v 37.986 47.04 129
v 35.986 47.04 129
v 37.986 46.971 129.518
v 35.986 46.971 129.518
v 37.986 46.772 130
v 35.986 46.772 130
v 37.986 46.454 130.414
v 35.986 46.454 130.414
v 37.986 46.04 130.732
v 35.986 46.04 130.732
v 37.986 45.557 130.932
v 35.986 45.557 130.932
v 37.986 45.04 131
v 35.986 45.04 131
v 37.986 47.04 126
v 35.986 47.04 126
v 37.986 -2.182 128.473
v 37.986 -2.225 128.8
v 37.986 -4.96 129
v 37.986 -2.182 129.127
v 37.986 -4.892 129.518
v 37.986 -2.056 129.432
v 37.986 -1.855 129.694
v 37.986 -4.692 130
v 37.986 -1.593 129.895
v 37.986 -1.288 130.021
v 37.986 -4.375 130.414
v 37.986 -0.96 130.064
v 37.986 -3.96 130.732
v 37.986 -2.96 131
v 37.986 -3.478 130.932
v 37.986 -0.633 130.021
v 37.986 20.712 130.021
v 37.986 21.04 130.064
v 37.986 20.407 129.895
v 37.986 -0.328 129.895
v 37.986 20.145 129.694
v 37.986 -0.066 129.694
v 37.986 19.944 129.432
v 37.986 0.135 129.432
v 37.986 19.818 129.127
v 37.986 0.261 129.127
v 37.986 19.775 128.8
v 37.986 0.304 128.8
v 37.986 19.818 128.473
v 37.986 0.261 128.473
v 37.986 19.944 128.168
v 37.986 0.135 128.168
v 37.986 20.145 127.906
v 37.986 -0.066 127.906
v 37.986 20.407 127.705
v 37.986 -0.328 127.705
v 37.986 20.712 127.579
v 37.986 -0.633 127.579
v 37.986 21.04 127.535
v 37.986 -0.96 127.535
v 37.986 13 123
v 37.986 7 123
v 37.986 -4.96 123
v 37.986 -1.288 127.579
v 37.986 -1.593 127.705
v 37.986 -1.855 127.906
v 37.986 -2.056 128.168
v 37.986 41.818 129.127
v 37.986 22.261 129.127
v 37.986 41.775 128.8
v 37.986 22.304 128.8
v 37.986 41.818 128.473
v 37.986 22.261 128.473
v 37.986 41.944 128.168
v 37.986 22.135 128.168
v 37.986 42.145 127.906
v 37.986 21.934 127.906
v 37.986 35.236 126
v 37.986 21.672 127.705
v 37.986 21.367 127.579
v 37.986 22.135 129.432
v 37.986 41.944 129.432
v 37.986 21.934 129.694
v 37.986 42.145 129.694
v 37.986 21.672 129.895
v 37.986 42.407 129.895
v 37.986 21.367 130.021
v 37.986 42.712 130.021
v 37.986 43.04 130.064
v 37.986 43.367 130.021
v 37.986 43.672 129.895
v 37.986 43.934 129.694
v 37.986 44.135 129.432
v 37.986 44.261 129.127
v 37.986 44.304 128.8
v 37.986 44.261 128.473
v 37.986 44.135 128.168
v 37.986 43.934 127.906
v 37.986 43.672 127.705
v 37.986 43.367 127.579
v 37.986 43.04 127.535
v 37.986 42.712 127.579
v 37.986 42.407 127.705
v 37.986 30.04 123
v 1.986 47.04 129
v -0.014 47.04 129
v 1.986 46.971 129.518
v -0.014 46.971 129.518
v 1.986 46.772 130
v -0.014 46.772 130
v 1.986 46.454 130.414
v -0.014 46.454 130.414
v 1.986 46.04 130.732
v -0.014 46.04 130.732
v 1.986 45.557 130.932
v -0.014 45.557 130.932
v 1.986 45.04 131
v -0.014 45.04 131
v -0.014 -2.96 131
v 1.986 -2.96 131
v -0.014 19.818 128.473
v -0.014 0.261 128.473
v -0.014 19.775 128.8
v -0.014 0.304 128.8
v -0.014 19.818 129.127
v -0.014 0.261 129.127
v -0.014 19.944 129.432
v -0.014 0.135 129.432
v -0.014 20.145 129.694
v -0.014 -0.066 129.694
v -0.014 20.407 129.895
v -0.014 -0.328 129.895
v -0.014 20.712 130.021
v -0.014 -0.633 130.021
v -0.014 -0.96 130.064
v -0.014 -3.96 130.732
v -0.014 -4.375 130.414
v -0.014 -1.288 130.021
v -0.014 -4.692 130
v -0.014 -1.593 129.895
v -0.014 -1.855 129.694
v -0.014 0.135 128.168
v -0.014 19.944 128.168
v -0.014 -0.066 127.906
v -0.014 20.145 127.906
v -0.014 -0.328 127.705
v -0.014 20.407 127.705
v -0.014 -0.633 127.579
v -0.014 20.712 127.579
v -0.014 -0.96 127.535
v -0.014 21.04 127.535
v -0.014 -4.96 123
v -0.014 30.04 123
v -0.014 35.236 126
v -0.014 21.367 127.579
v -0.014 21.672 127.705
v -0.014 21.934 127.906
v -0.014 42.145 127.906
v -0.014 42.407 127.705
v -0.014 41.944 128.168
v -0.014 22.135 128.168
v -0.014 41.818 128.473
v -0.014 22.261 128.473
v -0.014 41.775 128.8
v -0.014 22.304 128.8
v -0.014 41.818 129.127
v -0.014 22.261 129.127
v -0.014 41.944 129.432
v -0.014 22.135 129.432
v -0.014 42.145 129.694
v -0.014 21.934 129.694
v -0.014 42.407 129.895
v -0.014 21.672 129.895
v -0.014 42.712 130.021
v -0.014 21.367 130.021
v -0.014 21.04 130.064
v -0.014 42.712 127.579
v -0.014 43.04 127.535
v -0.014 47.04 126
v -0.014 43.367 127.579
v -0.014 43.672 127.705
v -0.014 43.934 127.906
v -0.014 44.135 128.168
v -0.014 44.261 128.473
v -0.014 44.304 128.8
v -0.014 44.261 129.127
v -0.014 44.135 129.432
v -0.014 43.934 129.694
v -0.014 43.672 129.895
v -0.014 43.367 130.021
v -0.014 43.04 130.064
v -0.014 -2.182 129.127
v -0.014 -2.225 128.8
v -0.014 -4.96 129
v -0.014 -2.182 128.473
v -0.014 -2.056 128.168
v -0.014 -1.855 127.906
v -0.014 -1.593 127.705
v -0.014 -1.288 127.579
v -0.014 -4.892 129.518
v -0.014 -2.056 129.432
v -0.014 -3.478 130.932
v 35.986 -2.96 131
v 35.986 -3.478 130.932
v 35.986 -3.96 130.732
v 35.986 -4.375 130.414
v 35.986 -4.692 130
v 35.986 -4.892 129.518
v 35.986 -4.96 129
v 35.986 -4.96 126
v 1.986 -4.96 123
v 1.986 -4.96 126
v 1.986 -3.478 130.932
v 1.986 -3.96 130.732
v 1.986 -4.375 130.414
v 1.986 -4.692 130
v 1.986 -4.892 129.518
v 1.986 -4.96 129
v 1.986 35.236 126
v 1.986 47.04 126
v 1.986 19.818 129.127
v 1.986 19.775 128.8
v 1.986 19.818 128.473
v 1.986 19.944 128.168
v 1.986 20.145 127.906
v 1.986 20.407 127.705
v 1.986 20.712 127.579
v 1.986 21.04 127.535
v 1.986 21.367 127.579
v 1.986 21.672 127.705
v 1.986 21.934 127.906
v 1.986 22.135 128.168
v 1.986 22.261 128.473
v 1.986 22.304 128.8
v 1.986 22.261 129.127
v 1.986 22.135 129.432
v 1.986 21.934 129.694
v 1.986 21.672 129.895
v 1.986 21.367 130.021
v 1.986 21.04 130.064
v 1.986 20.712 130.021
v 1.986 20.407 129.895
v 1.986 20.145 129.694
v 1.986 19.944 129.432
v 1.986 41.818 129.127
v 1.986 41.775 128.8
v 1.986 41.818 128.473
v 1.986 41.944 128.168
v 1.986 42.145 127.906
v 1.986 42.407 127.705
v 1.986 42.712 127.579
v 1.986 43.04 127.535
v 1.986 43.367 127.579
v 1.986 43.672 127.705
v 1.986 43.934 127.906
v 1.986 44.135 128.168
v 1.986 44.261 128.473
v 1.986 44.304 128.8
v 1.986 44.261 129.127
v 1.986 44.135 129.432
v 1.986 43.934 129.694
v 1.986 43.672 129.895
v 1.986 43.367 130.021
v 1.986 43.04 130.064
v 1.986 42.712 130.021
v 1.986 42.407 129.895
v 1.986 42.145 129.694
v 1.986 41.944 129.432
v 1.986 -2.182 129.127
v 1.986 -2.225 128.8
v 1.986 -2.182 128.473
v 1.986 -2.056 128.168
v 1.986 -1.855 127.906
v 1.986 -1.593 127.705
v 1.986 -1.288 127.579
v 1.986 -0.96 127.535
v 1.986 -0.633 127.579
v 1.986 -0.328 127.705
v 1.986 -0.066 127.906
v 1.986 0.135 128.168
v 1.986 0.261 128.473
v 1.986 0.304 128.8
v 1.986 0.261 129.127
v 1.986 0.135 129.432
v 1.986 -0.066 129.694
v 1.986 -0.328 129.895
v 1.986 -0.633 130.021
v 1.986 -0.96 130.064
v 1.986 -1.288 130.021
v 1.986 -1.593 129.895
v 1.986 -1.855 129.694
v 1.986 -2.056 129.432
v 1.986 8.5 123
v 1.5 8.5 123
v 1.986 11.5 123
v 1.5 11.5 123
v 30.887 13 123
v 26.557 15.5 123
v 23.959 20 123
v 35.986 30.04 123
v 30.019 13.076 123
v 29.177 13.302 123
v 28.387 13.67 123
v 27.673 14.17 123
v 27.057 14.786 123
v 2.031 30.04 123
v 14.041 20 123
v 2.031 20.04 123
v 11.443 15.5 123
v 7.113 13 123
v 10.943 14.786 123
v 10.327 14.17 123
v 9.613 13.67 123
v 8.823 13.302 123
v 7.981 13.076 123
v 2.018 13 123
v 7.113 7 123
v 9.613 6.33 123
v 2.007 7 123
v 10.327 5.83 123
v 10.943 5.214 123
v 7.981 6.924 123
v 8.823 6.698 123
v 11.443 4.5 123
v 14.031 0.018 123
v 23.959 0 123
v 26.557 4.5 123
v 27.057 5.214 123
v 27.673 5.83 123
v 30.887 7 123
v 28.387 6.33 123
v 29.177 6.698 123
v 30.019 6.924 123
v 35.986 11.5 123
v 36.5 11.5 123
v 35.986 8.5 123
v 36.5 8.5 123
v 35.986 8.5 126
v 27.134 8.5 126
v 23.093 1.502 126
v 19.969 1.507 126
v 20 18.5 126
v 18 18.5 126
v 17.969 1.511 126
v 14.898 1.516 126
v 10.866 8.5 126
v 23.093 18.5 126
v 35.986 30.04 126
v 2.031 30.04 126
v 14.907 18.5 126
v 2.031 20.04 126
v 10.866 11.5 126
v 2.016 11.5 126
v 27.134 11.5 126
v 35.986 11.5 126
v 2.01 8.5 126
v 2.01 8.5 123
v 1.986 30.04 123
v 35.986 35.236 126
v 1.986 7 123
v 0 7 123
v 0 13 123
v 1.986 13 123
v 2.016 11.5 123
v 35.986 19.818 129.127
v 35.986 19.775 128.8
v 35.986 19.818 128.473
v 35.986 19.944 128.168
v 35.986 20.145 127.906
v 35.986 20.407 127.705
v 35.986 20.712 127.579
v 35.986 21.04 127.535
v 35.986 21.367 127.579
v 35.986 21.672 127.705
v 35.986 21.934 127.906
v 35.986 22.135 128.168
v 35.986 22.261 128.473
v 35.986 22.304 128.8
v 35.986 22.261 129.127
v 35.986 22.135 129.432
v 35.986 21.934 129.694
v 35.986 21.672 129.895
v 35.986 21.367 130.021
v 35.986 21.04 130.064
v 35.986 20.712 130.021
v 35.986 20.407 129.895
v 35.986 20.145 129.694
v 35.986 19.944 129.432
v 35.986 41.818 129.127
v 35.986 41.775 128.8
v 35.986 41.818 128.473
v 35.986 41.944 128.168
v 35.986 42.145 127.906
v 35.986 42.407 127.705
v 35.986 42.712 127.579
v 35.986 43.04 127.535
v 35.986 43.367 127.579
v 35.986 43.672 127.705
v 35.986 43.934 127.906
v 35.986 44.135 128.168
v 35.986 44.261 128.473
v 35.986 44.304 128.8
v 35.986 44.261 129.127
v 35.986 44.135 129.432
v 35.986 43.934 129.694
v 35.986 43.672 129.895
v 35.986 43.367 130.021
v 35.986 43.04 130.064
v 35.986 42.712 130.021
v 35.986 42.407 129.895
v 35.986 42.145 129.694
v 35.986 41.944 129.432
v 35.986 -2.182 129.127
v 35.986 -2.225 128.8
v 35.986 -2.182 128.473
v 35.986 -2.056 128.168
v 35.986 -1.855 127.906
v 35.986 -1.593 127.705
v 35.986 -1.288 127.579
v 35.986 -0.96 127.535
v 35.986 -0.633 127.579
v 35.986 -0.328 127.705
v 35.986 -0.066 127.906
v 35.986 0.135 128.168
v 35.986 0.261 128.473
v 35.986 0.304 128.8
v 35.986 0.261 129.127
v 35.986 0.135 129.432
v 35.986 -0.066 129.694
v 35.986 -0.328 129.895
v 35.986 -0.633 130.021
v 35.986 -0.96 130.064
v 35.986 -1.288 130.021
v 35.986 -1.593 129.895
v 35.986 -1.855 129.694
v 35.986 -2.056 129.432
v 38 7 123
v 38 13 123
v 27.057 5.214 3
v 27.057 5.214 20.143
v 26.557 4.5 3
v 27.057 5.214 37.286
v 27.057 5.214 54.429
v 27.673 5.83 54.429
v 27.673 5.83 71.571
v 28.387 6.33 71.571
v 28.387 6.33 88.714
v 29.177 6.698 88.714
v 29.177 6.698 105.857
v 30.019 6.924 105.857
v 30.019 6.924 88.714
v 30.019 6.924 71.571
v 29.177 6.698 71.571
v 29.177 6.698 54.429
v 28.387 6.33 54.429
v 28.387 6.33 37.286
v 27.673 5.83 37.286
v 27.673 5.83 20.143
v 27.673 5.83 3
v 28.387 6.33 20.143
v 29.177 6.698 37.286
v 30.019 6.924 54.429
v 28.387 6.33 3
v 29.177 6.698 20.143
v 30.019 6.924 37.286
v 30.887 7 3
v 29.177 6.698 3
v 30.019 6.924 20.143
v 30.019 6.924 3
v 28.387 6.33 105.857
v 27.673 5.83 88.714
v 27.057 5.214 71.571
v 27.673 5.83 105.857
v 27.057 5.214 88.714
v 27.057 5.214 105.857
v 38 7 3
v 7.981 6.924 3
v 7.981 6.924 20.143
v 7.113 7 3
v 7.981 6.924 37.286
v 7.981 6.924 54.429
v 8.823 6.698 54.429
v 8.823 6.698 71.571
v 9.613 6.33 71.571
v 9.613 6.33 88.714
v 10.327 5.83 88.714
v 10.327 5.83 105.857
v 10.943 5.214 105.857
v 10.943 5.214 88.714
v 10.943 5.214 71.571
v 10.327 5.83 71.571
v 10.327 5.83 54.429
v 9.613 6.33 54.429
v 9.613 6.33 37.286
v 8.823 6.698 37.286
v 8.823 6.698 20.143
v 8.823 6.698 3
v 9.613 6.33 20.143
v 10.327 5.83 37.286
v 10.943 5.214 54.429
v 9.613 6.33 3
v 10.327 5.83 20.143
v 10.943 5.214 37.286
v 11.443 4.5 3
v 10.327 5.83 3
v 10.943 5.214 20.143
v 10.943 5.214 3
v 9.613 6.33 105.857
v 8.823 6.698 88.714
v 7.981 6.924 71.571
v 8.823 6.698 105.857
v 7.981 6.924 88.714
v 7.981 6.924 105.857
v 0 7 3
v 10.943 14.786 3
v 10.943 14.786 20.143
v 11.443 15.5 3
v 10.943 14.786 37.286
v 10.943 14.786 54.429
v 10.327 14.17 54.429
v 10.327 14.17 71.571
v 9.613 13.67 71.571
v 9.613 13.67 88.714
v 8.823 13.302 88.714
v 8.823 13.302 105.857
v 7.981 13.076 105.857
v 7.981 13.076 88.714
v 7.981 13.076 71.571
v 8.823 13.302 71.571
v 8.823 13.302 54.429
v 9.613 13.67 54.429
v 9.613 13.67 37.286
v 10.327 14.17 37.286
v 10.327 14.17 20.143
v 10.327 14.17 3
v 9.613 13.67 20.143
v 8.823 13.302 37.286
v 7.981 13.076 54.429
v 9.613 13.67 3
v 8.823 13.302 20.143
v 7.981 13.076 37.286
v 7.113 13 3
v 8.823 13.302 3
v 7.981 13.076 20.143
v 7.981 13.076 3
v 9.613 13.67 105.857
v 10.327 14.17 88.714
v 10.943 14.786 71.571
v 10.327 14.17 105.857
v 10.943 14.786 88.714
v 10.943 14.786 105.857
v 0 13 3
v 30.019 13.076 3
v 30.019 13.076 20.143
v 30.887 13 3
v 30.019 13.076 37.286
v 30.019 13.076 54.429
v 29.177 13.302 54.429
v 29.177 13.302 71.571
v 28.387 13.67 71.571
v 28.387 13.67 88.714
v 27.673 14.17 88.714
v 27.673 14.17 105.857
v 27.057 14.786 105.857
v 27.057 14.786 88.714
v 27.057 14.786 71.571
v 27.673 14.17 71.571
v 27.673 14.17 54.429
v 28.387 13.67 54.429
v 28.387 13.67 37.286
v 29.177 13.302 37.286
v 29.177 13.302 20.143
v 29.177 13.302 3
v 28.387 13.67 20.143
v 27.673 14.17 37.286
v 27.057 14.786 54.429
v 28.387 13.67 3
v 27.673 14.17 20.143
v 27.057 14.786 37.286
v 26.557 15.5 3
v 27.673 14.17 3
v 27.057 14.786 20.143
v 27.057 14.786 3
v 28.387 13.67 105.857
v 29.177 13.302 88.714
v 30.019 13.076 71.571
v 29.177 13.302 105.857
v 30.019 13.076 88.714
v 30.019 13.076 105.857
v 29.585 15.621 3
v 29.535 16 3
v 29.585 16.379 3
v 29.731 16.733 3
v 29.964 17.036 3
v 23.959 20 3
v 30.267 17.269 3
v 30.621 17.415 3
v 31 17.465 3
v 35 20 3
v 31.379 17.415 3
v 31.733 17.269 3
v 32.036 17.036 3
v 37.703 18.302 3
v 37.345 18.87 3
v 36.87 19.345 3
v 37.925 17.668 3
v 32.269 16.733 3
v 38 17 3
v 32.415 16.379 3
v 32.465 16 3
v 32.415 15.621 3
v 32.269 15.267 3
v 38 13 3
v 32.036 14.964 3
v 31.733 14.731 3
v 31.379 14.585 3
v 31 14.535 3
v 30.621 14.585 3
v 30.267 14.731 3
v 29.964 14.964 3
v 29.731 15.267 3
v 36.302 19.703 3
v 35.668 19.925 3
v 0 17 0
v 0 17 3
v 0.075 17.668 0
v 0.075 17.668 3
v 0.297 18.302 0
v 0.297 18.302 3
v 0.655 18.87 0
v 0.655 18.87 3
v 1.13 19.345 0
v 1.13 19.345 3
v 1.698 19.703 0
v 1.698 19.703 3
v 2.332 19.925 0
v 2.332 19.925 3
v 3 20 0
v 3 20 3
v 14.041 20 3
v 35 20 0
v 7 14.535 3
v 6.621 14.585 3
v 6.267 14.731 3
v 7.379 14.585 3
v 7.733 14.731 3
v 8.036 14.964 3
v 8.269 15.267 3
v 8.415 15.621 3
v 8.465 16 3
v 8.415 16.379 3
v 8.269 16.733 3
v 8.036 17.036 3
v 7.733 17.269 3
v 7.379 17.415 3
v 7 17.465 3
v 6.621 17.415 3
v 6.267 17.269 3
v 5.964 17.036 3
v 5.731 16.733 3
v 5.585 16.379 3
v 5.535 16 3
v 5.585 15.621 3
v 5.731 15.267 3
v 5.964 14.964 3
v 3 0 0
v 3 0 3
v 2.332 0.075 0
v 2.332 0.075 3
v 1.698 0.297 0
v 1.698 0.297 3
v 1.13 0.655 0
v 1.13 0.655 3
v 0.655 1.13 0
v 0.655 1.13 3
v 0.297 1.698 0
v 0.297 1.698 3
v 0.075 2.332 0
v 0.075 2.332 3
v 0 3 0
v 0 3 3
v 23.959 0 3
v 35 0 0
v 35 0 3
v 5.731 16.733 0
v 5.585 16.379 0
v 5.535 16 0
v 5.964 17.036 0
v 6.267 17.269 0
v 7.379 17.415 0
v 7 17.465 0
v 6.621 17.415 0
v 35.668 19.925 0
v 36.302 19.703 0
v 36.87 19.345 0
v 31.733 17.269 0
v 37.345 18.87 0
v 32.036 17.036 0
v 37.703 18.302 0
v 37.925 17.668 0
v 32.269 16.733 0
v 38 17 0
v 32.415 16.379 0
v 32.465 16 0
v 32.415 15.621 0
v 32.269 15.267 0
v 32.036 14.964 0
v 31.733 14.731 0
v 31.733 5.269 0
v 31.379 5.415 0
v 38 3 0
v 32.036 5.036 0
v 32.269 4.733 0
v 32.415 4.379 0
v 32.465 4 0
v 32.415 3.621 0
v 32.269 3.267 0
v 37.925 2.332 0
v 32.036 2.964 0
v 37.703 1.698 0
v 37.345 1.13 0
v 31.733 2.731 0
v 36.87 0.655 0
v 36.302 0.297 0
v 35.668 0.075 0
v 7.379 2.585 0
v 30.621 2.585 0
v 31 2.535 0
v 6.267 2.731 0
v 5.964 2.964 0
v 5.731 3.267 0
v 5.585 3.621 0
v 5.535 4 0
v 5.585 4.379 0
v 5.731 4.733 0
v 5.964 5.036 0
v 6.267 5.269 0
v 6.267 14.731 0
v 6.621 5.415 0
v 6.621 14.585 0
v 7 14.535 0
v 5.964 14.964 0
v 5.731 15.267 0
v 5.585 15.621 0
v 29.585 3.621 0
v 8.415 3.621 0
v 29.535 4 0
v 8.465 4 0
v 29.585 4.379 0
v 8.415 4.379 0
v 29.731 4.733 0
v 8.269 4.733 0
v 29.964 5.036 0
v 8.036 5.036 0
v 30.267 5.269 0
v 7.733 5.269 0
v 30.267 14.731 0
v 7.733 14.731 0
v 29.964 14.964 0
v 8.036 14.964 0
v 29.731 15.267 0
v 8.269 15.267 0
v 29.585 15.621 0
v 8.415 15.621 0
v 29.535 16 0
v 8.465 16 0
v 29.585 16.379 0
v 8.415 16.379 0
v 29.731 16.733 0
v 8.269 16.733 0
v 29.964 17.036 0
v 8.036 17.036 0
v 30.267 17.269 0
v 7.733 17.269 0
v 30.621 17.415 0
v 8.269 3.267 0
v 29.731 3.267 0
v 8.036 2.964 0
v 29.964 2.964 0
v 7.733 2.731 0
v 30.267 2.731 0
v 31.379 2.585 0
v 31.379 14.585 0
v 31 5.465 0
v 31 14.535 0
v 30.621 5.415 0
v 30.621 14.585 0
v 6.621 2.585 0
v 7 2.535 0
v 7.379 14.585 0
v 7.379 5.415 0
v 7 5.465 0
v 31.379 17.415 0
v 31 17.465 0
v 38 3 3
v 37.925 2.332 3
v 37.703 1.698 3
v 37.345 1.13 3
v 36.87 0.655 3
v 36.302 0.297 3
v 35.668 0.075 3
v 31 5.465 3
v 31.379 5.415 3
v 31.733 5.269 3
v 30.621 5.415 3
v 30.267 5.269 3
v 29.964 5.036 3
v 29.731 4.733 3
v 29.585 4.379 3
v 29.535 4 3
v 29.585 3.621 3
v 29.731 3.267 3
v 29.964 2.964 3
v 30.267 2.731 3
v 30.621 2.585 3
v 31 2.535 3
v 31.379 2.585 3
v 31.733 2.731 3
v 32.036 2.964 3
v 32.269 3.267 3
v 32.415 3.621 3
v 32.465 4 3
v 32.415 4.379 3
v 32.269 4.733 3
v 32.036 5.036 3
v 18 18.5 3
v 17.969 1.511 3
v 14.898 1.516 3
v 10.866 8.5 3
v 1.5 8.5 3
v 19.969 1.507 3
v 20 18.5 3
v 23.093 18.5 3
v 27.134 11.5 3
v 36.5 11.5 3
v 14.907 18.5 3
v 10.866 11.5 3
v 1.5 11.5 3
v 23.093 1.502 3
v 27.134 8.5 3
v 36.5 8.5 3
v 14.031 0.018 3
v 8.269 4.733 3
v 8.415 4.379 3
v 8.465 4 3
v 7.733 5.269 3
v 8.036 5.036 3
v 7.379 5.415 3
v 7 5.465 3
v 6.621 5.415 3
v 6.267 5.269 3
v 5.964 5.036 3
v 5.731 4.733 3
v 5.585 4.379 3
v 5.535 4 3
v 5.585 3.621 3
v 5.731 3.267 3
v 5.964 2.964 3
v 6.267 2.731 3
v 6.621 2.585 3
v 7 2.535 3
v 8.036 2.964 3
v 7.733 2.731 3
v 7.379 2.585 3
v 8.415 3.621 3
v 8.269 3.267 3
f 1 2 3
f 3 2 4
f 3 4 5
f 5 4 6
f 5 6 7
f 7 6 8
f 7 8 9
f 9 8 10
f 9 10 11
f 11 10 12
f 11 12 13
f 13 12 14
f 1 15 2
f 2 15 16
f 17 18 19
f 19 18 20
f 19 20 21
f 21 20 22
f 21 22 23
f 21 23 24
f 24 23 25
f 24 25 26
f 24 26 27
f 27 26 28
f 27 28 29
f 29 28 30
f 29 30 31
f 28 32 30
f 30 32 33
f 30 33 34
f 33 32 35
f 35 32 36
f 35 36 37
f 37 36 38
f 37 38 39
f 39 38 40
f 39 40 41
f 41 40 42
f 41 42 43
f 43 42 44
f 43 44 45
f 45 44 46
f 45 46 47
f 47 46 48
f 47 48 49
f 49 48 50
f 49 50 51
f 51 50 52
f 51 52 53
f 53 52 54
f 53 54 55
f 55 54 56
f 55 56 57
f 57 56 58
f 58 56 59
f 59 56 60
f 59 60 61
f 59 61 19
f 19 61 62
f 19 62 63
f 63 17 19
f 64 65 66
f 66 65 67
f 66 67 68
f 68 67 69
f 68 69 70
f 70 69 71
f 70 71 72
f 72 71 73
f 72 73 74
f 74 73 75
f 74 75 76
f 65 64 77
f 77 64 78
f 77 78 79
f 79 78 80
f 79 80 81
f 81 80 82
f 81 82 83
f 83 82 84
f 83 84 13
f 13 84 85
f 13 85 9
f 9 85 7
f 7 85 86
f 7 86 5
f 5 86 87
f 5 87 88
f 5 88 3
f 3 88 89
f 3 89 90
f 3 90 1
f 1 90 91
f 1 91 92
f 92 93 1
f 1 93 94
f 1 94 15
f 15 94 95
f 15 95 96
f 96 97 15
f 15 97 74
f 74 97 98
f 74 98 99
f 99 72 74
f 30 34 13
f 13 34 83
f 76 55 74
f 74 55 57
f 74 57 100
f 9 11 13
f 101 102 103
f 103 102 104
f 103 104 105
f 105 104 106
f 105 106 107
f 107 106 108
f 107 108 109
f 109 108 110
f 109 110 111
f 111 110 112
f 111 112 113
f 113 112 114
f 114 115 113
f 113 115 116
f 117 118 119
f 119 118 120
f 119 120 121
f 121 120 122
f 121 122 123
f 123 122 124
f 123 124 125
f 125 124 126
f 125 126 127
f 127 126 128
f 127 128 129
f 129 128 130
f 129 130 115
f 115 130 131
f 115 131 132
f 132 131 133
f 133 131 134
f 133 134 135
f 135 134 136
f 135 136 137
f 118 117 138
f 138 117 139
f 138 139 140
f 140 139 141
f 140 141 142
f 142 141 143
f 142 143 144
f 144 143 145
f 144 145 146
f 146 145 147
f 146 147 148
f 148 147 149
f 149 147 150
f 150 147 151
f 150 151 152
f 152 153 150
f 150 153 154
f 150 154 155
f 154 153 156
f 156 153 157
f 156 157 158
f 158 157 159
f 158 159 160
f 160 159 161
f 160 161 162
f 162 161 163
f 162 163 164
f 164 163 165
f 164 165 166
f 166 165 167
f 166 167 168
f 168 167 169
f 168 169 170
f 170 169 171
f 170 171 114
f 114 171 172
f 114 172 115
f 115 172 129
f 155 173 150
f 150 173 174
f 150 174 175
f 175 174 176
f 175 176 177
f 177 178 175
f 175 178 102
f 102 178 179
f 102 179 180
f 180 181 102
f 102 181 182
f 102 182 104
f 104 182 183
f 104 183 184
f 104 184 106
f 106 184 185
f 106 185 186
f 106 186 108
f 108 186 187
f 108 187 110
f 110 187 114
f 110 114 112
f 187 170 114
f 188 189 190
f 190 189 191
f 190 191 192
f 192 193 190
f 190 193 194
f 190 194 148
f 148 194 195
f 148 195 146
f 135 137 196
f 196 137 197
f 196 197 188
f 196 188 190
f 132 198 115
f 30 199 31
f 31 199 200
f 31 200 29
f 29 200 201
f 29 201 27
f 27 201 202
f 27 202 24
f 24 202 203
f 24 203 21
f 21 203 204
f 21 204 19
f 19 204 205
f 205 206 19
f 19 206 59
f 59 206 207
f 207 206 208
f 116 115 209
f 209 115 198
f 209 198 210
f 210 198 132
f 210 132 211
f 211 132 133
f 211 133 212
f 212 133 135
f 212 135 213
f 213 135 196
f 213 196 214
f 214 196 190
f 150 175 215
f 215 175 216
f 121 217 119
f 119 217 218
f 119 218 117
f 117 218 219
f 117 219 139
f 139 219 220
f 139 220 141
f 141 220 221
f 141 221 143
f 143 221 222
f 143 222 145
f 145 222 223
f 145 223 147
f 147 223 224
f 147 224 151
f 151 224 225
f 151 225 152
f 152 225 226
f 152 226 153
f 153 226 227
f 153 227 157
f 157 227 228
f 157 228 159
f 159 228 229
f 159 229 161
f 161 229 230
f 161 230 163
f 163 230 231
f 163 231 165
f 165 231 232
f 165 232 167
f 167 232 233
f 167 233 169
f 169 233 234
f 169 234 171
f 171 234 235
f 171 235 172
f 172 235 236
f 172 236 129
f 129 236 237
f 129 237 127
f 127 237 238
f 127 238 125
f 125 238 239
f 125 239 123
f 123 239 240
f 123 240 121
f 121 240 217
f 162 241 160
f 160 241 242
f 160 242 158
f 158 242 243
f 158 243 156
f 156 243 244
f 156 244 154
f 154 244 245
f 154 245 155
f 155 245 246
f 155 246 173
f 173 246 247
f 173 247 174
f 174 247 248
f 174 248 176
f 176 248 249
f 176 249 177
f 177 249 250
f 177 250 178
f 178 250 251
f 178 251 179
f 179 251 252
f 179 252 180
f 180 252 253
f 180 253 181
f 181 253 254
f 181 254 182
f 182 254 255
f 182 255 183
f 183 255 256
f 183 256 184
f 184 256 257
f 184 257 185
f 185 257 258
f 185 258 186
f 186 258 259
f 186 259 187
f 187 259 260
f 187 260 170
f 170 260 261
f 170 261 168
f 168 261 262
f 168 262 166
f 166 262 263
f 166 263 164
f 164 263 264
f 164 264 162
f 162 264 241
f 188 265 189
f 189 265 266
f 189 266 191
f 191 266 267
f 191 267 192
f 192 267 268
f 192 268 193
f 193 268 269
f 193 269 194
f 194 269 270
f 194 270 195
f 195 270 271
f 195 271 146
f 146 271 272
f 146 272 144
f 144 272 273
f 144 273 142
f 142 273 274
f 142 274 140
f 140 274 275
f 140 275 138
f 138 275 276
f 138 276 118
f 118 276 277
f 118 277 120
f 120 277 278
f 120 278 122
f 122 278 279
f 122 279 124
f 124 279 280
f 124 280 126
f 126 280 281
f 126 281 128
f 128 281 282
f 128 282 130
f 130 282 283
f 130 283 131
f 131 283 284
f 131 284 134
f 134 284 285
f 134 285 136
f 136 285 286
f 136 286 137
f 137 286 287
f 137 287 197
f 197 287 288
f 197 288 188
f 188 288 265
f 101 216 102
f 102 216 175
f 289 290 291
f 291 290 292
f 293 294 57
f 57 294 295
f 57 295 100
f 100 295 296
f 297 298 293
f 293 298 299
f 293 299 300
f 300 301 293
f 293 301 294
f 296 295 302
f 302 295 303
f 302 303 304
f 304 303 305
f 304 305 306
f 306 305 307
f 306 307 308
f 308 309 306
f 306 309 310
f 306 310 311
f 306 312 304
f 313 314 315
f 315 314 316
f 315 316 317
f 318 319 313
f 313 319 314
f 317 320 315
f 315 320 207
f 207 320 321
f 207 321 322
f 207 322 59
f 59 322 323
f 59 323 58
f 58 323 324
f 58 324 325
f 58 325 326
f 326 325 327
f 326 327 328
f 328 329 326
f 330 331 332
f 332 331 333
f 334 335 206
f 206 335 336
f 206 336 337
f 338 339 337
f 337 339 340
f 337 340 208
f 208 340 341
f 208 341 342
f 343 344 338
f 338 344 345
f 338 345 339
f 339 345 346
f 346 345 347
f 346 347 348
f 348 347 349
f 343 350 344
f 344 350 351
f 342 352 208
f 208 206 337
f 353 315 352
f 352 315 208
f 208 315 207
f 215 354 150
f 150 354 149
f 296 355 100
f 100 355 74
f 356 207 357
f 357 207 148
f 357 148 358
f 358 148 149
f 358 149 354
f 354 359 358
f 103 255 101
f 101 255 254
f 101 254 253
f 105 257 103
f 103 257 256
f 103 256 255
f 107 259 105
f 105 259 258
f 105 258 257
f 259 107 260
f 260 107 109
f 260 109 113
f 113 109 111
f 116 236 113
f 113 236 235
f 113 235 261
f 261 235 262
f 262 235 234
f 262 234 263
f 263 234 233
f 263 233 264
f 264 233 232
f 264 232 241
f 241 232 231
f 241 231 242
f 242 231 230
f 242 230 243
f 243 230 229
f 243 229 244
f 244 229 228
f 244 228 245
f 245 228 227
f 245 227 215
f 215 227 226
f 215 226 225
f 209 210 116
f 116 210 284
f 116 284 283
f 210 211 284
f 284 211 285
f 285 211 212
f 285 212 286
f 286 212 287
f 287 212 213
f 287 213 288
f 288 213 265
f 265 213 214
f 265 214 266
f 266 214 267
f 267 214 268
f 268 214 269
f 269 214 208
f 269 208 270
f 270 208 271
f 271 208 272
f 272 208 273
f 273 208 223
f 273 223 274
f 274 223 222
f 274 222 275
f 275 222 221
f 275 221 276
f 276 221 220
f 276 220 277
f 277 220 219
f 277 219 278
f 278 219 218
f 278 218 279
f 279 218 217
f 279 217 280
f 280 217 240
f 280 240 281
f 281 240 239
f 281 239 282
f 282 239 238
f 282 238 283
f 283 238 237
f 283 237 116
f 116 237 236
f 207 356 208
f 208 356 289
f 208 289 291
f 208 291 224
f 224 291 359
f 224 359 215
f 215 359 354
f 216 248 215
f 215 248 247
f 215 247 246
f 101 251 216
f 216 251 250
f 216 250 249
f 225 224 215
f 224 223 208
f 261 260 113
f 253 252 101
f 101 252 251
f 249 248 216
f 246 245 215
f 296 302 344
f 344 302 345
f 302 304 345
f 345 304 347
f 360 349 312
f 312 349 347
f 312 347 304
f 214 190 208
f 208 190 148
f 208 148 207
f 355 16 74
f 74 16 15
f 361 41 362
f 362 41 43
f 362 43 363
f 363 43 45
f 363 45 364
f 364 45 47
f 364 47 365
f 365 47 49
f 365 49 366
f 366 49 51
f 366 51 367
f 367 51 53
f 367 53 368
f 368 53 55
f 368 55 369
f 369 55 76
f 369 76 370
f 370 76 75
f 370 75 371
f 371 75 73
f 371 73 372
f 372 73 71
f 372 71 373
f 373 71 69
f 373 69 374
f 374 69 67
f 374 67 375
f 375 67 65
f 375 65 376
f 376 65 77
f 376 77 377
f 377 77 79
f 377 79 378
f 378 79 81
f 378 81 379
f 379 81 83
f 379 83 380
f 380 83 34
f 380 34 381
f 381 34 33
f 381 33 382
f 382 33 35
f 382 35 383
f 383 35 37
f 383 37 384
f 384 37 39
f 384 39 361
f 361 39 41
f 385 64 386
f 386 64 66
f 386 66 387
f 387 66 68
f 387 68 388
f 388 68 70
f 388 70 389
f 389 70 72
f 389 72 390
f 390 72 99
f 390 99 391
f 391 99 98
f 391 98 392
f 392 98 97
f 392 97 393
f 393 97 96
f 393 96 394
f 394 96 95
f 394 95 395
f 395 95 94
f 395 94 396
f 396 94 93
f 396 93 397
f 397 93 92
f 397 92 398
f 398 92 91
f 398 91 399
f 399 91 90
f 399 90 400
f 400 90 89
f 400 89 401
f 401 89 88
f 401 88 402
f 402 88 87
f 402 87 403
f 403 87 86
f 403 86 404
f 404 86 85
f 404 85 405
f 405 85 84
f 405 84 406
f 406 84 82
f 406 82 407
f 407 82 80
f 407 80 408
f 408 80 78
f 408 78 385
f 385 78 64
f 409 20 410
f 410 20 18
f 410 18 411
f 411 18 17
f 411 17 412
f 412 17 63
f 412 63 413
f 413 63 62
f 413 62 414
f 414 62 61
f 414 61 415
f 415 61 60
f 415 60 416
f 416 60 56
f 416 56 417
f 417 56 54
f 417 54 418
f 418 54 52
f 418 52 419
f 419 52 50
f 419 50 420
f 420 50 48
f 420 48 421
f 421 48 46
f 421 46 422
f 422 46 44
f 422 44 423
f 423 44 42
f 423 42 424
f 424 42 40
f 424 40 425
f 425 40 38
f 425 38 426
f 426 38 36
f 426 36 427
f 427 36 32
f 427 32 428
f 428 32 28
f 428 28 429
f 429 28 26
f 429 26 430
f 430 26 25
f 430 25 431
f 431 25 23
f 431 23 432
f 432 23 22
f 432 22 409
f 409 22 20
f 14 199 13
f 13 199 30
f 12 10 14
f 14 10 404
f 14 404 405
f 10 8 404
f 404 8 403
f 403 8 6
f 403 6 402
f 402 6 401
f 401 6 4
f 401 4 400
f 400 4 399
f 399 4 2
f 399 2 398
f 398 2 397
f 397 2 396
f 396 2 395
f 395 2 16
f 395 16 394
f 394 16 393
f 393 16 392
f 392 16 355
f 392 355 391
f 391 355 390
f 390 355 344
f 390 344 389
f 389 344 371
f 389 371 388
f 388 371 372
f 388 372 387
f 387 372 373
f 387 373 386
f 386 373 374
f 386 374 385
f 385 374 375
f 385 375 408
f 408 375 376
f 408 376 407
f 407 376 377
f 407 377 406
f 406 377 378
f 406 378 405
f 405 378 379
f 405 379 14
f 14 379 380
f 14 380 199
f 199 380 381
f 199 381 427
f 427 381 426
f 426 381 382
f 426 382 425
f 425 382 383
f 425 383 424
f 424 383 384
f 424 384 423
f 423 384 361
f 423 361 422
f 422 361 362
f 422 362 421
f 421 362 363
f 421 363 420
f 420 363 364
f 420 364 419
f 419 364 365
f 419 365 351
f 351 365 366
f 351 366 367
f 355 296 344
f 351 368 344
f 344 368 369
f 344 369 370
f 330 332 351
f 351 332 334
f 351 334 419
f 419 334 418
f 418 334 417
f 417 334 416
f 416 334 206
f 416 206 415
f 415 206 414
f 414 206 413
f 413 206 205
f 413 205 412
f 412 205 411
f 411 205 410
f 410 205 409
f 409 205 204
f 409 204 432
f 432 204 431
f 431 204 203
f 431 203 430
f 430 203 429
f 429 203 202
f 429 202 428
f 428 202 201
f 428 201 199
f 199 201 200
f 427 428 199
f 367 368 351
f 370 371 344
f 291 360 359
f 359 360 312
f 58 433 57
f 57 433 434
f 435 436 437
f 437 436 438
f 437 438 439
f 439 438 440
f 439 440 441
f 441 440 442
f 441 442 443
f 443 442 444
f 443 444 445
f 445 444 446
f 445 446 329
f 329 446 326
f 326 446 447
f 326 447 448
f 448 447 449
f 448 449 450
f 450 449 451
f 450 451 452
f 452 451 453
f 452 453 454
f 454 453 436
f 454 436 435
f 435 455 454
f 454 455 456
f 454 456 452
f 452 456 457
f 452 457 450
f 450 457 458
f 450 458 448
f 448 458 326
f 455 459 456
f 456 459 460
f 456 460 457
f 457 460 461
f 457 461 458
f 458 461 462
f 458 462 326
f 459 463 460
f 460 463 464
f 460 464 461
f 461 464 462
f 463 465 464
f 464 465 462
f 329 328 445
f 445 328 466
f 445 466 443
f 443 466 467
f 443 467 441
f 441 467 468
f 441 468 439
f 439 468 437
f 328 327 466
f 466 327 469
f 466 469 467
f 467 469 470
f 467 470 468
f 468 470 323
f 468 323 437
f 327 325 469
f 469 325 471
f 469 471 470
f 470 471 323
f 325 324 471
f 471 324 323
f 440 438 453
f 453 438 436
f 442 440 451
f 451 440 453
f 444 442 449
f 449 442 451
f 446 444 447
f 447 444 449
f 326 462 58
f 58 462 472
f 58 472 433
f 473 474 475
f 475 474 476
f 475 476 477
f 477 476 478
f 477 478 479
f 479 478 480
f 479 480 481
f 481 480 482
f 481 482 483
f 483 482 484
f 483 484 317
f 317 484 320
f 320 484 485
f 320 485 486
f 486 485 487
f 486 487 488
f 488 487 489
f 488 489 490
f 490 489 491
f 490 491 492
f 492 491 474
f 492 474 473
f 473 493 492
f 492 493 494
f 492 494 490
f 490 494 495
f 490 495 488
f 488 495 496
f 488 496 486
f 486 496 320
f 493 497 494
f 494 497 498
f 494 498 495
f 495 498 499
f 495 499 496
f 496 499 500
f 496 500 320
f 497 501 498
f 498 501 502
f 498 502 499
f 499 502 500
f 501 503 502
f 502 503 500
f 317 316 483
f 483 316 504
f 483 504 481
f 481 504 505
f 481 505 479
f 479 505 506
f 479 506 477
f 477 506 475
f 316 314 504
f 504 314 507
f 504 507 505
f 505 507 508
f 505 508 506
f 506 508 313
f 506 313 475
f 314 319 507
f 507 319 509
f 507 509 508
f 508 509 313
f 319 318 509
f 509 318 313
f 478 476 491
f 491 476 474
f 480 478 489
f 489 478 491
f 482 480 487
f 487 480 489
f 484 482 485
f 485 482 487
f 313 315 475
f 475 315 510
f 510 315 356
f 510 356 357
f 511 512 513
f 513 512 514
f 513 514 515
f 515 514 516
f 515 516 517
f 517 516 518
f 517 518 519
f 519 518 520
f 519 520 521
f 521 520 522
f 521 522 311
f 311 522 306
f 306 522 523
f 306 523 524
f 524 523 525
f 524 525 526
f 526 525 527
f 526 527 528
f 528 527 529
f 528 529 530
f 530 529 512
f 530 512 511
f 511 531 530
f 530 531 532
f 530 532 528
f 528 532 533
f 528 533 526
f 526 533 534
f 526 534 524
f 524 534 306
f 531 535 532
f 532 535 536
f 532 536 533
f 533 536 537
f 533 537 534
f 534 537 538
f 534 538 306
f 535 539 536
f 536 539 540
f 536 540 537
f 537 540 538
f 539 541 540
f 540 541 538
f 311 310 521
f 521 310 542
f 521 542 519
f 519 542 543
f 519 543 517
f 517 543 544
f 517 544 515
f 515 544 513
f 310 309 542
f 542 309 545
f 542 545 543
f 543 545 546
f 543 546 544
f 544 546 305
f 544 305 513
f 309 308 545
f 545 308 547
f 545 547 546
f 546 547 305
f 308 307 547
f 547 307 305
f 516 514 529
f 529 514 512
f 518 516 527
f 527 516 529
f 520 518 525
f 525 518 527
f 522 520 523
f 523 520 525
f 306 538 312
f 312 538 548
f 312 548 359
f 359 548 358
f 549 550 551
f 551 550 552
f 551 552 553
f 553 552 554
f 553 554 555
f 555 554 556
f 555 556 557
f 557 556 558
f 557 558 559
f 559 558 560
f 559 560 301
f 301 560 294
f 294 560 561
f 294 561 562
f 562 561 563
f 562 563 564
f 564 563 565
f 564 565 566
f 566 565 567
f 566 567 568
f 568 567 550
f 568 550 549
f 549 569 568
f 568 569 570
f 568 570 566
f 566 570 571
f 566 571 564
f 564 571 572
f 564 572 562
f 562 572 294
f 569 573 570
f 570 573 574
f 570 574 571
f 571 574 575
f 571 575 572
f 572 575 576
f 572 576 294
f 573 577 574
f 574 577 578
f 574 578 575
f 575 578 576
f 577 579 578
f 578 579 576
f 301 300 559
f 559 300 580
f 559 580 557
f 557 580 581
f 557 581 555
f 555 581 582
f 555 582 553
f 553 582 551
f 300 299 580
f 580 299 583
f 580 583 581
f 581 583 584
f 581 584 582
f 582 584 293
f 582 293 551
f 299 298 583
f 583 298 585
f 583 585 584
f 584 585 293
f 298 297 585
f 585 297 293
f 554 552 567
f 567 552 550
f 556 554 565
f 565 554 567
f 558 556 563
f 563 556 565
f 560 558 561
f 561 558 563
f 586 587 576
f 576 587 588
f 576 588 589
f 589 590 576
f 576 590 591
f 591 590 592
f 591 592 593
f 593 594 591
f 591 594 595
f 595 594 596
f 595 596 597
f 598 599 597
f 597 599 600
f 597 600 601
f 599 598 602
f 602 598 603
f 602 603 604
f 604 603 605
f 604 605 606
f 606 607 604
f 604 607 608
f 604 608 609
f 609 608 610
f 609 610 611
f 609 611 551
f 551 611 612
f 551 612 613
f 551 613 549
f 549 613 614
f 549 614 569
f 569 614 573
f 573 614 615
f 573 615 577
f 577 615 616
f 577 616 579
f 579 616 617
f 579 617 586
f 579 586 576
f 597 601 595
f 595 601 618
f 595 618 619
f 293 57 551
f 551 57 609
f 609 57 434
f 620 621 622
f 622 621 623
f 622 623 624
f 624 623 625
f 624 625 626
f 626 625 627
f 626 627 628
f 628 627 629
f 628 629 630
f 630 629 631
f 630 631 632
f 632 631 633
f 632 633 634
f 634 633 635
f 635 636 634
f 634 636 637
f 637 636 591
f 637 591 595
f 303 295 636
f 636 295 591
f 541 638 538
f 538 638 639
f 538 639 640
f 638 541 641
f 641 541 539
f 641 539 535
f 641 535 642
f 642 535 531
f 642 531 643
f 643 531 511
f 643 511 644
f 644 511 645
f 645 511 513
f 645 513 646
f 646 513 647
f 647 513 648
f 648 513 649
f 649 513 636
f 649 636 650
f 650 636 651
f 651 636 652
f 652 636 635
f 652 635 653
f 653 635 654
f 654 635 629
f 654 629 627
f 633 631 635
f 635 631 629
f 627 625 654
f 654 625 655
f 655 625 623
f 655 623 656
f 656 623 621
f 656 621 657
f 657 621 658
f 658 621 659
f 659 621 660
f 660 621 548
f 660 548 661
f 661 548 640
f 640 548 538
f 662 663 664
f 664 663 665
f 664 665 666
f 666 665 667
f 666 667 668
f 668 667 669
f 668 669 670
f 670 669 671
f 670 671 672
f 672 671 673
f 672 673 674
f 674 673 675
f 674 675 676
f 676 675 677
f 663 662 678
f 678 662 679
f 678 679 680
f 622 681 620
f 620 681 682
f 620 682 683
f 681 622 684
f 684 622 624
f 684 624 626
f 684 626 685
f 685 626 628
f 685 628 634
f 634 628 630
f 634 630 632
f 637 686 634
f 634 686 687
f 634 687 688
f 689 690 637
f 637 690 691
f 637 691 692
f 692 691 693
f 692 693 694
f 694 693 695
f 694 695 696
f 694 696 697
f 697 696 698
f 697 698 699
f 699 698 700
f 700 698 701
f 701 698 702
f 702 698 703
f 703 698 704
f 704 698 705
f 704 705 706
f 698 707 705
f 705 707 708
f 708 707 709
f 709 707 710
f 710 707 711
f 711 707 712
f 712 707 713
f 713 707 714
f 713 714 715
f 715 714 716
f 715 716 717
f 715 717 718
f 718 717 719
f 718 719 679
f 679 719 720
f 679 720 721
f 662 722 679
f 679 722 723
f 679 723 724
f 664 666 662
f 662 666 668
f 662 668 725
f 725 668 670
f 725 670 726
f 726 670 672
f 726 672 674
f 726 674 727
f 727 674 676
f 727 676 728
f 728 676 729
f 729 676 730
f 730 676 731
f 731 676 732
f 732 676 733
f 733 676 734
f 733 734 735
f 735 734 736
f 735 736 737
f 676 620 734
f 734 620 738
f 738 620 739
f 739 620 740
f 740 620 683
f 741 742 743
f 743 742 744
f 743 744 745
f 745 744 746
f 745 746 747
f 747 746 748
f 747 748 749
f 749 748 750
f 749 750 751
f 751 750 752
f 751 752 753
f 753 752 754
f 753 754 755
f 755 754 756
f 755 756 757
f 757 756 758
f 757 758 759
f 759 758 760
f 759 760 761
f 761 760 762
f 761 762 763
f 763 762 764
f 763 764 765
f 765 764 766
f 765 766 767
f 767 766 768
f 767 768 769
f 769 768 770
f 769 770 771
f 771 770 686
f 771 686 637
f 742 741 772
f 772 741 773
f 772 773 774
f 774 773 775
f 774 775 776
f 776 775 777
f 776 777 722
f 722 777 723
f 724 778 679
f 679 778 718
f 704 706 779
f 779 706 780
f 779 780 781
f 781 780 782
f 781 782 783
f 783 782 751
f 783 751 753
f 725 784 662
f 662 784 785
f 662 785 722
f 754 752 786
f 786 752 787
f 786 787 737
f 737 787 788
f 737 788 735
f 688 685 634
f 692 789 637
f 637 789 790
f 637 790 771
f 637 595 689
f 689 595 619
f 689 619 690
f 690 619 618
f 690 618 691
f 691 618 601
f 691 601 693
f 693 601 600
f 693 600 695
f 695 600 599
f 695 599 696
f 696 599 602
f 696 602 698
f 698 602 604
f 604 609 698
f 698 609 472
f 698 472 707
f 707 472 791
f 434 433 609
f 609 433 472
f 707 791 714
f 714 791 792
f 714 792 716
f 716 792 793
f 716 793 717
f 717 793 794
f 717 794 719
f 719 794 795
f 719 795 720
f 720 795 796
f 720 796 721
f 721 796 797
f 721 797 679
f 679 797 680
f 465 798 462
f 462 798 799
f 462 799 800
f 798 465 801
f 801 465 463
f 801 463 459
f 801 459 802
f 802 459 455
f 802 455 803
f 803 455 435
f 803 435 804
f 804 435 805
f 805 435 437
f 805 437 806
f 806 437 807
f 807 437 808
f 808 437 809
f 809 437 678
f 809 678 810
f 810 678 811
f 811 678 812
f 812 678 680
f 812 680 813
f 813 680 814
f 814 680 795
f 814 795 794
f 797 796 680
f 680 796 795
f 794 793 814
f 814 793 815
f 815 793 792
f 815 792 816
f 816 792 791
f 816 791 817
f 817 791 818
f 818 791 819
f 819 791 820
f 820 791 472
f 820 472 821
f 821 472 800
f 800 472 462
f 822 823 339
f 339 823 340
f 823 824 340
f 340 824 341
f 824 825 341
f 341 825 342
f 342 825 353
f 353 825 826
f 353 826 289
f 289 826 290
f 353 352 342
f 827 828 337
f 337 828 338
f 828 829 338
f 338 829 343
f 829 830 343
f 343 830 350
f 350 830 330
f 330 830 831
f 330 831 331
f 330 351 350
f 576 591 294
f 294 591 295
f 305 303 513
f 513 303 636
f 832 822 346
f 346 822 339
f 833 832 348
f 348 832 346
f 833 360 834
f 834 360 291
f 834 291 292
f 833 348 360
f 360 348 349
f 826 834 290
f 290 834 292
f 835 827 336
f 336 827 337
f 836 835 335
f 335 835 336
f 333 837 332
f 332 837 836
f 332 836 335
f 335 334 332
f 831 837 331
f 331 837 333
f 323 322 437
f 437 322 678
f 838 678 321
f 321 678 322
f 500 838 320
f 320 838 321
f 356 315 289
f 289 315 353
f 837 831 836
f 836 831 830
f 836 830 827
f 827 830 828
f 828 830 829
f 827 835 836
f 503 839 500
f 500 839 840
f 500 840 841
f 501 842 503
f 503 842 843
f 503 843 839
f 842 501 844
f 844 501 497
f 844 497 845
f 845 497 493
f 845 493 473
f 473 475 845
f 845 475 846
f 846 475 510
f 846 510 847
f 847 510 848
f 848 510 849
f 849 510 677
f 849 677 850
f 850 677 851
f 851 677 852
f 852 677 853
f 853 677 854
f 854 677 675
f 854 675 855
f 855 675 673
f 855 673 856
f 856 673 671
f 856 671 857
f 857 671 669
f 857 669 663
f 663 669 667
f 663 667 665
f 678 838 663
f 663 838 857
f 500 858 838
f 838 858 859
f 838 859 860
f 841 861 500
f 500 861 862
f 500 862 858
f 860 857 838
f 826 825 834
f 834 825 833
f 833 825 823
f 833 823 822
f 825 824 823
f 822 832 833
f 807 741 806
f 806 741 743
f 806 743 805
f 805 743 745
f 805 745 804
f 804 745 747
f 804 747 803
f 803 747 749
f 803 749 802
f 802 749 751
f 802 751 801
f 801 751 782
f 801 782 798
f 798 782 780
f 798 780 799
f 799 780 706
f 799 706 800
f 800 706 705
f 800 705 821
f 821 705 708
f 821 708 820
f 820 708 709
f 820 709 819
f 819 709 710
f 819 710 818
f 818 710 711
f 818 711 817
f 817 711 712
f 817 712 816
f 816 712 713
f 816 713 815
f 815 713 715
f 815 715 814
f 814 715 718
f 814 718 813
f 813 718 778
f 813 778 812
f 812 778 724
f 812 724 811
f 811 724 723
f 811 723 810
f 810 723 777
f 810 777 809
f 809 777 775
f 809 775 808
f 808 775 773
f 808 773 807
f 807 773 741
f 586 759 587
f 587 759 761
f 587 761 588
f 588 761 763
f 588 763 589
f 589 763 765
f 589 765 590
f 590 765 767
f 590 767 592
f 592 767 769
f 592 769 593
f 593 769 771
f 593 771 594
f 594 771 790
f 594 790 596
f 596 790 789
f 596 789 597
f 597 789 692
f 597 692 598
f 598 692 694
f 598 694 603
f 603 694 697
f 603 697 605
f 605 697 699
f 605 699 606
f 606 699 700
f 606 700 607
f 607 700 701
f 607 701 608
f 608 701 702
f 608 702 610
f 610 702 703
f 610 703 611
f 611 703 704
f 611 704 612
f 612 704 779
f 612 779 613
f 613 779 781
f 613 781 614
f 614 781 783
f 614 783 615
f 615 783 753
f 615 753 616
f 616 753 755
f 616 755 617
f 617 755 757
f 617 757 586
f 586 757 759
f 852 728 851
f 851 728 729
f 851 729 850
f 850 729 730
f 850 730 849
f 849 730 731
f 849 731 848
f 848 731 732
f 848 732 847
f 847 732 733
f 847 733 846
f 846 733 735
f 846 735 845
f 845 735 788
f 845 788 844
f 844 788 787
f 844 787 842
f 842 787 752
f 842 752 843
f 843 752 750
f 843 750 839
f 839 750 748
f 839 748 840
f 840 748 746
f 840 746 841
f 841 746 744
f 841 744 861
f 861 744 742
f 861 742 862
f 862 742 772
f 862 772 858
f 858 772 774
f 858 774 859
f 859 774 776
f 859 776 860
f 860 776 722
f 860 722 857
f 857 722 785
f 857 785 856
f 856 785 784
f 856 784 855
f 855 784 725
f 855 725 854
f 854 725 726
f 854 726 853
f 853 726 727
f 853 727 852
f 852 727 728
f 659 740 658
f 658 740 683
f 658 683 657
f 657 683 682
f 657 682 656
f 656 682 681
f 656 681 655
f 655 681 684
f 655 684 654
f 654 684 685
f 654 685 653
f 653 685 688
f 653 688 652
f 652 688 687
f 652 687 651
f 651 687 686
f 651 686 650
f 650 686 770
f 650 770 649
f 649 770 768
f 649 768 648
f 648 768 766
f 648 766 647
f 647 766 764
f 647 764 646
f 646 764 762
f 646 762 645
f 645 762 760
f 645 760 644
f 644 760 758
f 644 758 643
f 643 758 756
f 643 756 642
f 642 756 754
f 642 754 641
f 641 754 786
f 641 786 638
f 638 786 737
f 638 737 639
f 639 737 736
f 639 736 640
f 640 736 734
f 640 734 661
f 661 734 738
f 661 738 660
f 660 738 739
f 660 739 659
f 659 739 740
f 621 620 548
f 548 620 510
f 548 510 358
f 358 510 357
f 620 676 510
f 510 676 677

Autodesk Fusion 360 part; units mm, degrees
sketch "스케치1" plane through (0, 0, 0) normal (0, 0, 1) x (1, 0, 0)
  line L0 (0, 0) -> (38, 0)
  line L1 (38, 0) -> (38, 20)
  line L2 (38, 20) -> (0, 20)
  line L3 (0, 20) -> (0, 0)
  line L4 (0, 0) -> (0, 10)
  circle A0 centre (7, 16) radius 1.5
  circle A1 centre (31, 16) radius 1.5
  circle A2 centre (7, 4) radius 1.5
  circle A3 centre (31, 4) radius 1.5
  circle A4 centre (19, 10) radius 4
  line L5 (0, 10) -> (0, 13)
  line L6 (0, 13) -> (10, 13)
  line L7 (10, 13) -> (14.0415, 20)
  line L8 (10, 13) -> (18.0829, 13) construction
  line L9 (0, 10) -> (0, 7)
  line L10 (0, 10) -> (0, 7)
  line L11 (0, 7) -> (10, 7)
  line L12 (10, 7) -> (14.0311, 0.0179)
  line L13 (38, 10) -> (38, 13)
  line L14 (38, 13) -> (28, 13)
  line L15 (28, 13) -> (23.9585, 20)
  line L16 (28, 13) -> (36.0829, 13) construction
  line L17 (23.9585, 20) -> (14.0415, 20)
  line L18 (38, 10) -> (38, 7)
  line L19 (38, 7) -> (28, 7)
  line L20 (28, 7) -> (23.9585, 0)
  line L21 (28, 7) -> (36.0829, 7) construction
  line L22 (14.0415, 20) -> (23.9585, 20)
  line L23 (14.0311, 0.0179) -> (23.9585, 0)
  line L24 (27.134, 11.5) -> (23.0925, 18.5)
  line L25 (14.9075, 18.5) -> (23.0925, 18.5)
  line L26 (10.866, 11.5) -> (14.9075, 18.5)
  line L27 (1.5, 11.5) -> (10.866, 11.5)
  line L28 (1.5, 10) -> (1.5, 11.5)
  line L29 (1.5, 10) -> (1.5, 8.5)
  line L30 (1.5, 8.5) -> (10.866, 8.5)
  line L31 (10.866, 8.5) -> (14.8981, 1.5163)
  line L32 (14.8981, 1.5163) -> (23.0934, 1.5016)
  line L33 (27.134, 8.5) -> (23.0934, 1.5016)
  line L34 (36.5, 8.5) -> (27.134, 8.5)
  line L35 (36.5, 10) -> (36.5, 8.5)
  line L36 (36.5, 10) -> (36.5, 11.5)
  line L37 (36.5, 11.5) -> (27.134, 11.5)
  line L38 (19, 18.5) -> (20, 18.5)
  line L39 (19, 18.5) -> (18, 18.5)
  line L40 (18, 18.5) -> (17.9694, 1.5108)
  line L41 (20, 18.5) -> (19.9694, 1.5072)
  dimension "d1" = 38
  dimension "d2" = 20
  dimension "d7" = 3
  dimension "d8" = 3
  dimension "d9" = 3
  dimension "d10" = 3
  dimension "d11" = 8
  dimension "d12" = 3
  dimension "d13" = 10
  dimension "d14" = 60
  dimension "d15" = 120
  dimension "d16" = 10
  dimension "d17" = 120
  dimension "d19" = 10
  dimension "d20" = 120
  dimension "d21" = 1.5
  dimension "d22" = 1
  dimension "d23" = 1
extrude "돌출1" add sketch "스케치1" along normal blind 3 contours L0 L3 L4 L11 L12 L23 | L0 L1 L19 L20 | L1 L2 L3 L4 L5 L6 L7 L9 L10 L11 L12 L13 L14 L15 L17 L18 L19 L20 L22 L23 | L2 L3 L6 L7 | L1 L2 L14 L15 | A0 | A1 | A2 | A3 | A4 L41 | A4 L24 L25 L32 L33 L34 L35 L36 L37 L41 | A4 L40 L41 | A4 L25 L38 L39 L40 L41 | A4 L32 L40 L41 | A4 L40 | A4 L25 L26 L27 L28 L29 L30 L31 L32 L40 makes body 1
extrude "돌출2" add sketch "스케치1" against normal blind 2.5 contours A4 L41 | A4 L40 L41 | A4 L40 bodies 1
extrude "돌출3" cut sketch "스케치1" along normal blind 3 contours A0 | A1 | A2 | A3 bodies 1
extrude "돌출4" add sketch "스케치1" along normal blind 123 contours L1 L2 L3 L4 L5 L6 L7 L9 L10 L11 L12 L13 L14 L15 L17 L18 L19 L20 L22 L23 | A4 L40 L41 | A4 L25 L38 L39 L40 L41 | A4 L32 L40 L41 bodies 1
sketch "스케치2" plane through (0, 0, 123) normal (0, 0, 1) x (-1, 0, 0)
  line L0 (-36.5, -11.5) -> (-36.5, -8.5)
  line L1 (-36.5, -8.5) -> (-27.134, -8.5)
  line L2 (-27.134, -8.5) -> (-23.0934, -1.5016)
  line L3 (-23.0934, -1.5016) -> (-19.9694, -1.5072)
  line L4 (-19.9694, -1.5072) -> (-20, -18.5)
  line L5 (-20, -18.5) -> (-23.0925, -18.5)
  line L6 (-23.0925, -18.5) -> (-27.134, -11.5)
  line L7 (-27.134, -11.5) -> (-36.5, -11.5)
  line L8 (-1.5, -8.5) -> (-1.5, -11.5)
  line L9 (-1.5, -11.5) -> (-10.866, -11.5)
  line L10 (-10.866, -11.5) -> (-14.9075, -18.5)
  line L11 (-14.9075, -18.5) -> (-18, -18.5)
  line L12 (-18, -18.5) -> (-17.9694, -1.5108)
  line L13 (-17.9694, -1.5108) -> (-14.8981, -1.5163)
  line L14 (-14.8981, -1.5163) -> (-10.866, -8.5)
  line L15 (-10.866, -8.5) -> (-1.5, -8.5)
  line L16 (0, -13) -> (0, -7)
  line L17 (0, -7) -> (-10, -7)
  line L18 (-10, -7) -> (-14.0311, -0.0179)
  line L19 (-14.0311, -0.0179) -> (-23.9585, 0)
  line L20 (-23.9585, 0) -> (-28, -7)
  line L21 (-28, -7) -> (-38, -7)
  line L22 (-38, -7) -> (-38, -13)
  line L23 (-38, -13) -> (-28, -13)
  line L24 (-28, -13) -> (-23.9585, -20)
  line L25 (-23.9585, -20) -> (-14.0415, -20)
  line L26 (-14.0415, -20) -> (-10, -13)
  line L27 (-10, -13) -> (0, -13)
  line L28 (-18.9948, -0.0089) -> (-1.9949, -0.0396)
  line L29 (-1.9949, -0.0396) -> (-1.9859, 4.9604)
  line L30 (-1.9859, 4.9604) -> (-35.9859, 4.9604)
  line L31 (-35.9859, 4.9604) -> (-35.9859, -56.0396)
  line L32 (-35.9859, -56.0396) -> (-1.9859, -56.0396)
  line L33 (-1.9859, -56.0396) -> (-1.9859, 4.9604)
  line L34 (-35.9859, 4.9604) -> (-37.9859, 4.9604)
  line L35 (-1.9859, 4.9604) -> (0.0141, 4.9604)
  line L36 (0.0141, 4.9604) -> (0.0141, -56.0396)
  line L37 (0.0141, -56.0396) -> (-1.9859, -56.0396)
  line L38 (-1.9859, -56.0396) -> (-1.9859, 4.9604)
  line L39 (-37.9859, 4.9604) -> (-35.9859, 4.9604)
  line L40 (-35.9859, 4.9604) -> (-35.9859, -56.0396)
  line L41 (-35.9859, -56.0396) -> (-37.9859, -56.0396)
  line L42 (-37.9859, -56.0396) -> (-37.9859, 4.9604)
  line L43 (-1.9949, -0.0396) -> (-2.0309, -20.0395)
  line L44 (-2.0309, -20.0395) -> (-2.0309, -30.0395)
  line L45 (-2.0309, -30.0395) -> (-36.0309, -30.0395)
  line L46 (-35.9859, -56.0396) -> (-35.9859, -47.0396)
  line L47 (-35.9859, -47.0396) -> (-37.9859, -47.0396)
  line L48 (-35.9859, -47.0396) -> (0.0141, -47.0396)
  line L49 (-36.0309, -30.0395) -> (-38.0309, -30.0395)
  line L50 (-2.0309, -30.0395) -> (-0.0309, -30.0395)
  dimension "d32" = 17
  dimension "d33" = 5
  dimension "d34" = 34
  dimension "d35" = 61
  dimension "d36" = 2
  dimension "d37" = 2
  dimension "d38" = 61
  dimension "d39" = 20
  dimension "d40" = 10
  dimension "d41" = 34
  dimension "d56" = 9
  dimension "d57" = 36
  dimension "d60" = 2
  dimension "d61" = 2
extrude "돌출5" add sketch "스케치2" along normal blind 3 separate body contours L0 L1 L7 L21 L23 L31 L40 L42 | L0 L1 L7 L31 L40 | L1 L2 L3 L4 L5 L6 L7 L31 L40 | L1 L2 L3 L4 L5 L6 L7 L9 L10 L11 L12 L13 L14 L15 L17 L18 L19 L20 L21 L23 L24 L25 L26 L27 L28 L31 L40 L43 | L23 L31 L40 L42 L45 L49 | L23 L24 L25 L26 L27 L31 L40 L43 L44 L45 | L19 L20 L21 L28 L29 L30 L31 L40 | L21 L31 L34 L39 L40 L42 | L31 L33 L38 L40 L45 L48 L50 | L31 L40 L42 L45 L47 L49 | L31 L32 L33 L38 L40 L46 L48 | L31 L40 L41 L42 L46 L47 | L27 L33 L38 L43 L44 L50 | L16 L17 L27 L33 L35 L36 L38 L48 | L33 L36 L37 L38 L48 | L17 L18 L28 L43 | L8 L9 L15 L16 L17 L27 L33 L38 | L8 L9 L15 L33 L38 | L9 L10 L11 L12 L13 L14 L15 L43 makes body 2
extrude "돌출6" cut sketch "스케치2" along normal blind 3 contours L31 L33 L38 L40 L45 L48 L50 | L31 L32 L33 L38 L40 L46 L48 | L27 L33 L38 L43 L44 L50 bodies 2
sketch "스케치3" plane through (37.9859, 0, 0) normal (1, 0, 0) x (0, 1, 0)
  line L0 (-4.9604, 123) -> (56.0396, 123)
  line L1 (56.0396, 123) -> (56.0396, 126)
  line L2 (56.0396, 126) -> (-4.9604, 126)
  line L3 (-4.9604, 126) -> (-4.9604, 123)
  line L4 (-4.9604, 126) -> (-4.9604, 131)
  line L5 (-4.9604, 126) -> (-4.9604, 128.8)
  line L6 (-4.9604, 131) -> (56.0396, 131)
  line L7 (56.0396, 131) -> (56.0396, 126)
  line L8 (56.0396, 126) -> (-4.9604, 126)
  line L9 (-4.9604, 126) -> (-4.9604, 131)
  line L10 (-4.9604, 128.8) -> (56.0396, 128.8)
  line L11 (-4.9604, 128.8) -> (-0.9604, 128.8)
  line L12 (-0.9604, 128.8) -> (21.0396, 128.8)
  line L13 (21.0396, 128.8) -> (43.0396, 128.8)
  circle A0 centre (-0.9604, 128.8) radius 1.3
  circle A1 centre (21.0396, 128.8) radius 1.3
  circle A2 centre (43.0396, 128.8) radius 1.3
  line L14 (43.0396, 128.8) -> (47.0396, 128.8)
  line L15 (47.0396, 128.8) -> (47.0396, 131)
  line L16 (47.0396, 128.8) -> (47.0396, 126)
  line L17 (-4.9604, 123) -> (30.0396, 123)
  line L18 (30.0396, 123) -> (35.2357, 126)
  line L19 (30.0396, 123) -> (36.0396, 123) construction
  dimension "d46" = 5
  dimension "d47" = 2.8
  dimension "d48" = 61
  dimension "d49" = 4
  dimension "d50" = 22
  dimension "d51" = 22
  dimension "d52" = 2.6
  dimension "d53" = 2.6
  dimension "d54" = 2.6
  dimension "d55" = 4
  dimension "d62" = 35
  dimension "d63" = 30
extrude "돌출7" cut sketch "스케치2" along normal blind 3 contours L31 L32 L33 L38 L40 L46 L48 | L31 L40 L41 L42 L46 L47 | L33 L36 L37 L38 L48 bodies 2
extrude "돌출8" add sketch "스케치3" against normal blind 2 separate body contours L2 L4 L5 L8 L9 L10 L11 L12 L13 A0 A1 A2 L14 L16 | L4 L6 L9 L10 L11 L12 L13 A0 A1 A2 L14 L15 makes body 3
copy_body "CopyPasteBodies1" bodies 3 makes body 4
move_body "이동1" bodies 4 to x (1, 0, 0) y (0, 1, 0) z (0, 0, 1) at (-36, 0, 0)
extrude "돌출9" cut sketch "스케치3" against normal blind 38 contours L0 L1 L2 L8 L18 bodies 2
extrude "돌출10" cut sketch "스케치2" along normal blind 3 contours L1 L2 L3 L4 L5 L6 L7 L31 L40 | L9 L10 L11 L12 L13 L14 L15 L43 bodies 2
thread "스레드1"
thread "스레드2"
thread "스레드3"
thread "스레드4"
extrude "돌출11" cut 1 faces at (20.2188, 8.8691, -2.5) along direction (0, 0, 1) blind 2.5 on bodies 1 bodies 1
thread "스레드5"
thread "스레드6"
thread "스레드7"
thread "스레드8"
thread "스레드9"
thread "스레드10"
fillet "모깎기1" radius 3 4 edges at (38, 0, 1.5) (38, 20, 1.5) (0, 0, 1.5) (0, 20, 1.5) on bodies 1
fillet "모깎기2" radius 5 4 edges at (28, 13, 63) (10, 13, 63) (10, 7, 63) (28, 7, 63) on bodies 1
combine "결합1" operation add target body 1 tool bodies 3 2 4
fillet "모깎기3" radius 2 4 edges at (0.9859, -4.9604, 131) (36.9859, -4.9604, 131) (0.9859, 47.0396, 131) (36.9859, 47.0396, 131) on bodies 1
